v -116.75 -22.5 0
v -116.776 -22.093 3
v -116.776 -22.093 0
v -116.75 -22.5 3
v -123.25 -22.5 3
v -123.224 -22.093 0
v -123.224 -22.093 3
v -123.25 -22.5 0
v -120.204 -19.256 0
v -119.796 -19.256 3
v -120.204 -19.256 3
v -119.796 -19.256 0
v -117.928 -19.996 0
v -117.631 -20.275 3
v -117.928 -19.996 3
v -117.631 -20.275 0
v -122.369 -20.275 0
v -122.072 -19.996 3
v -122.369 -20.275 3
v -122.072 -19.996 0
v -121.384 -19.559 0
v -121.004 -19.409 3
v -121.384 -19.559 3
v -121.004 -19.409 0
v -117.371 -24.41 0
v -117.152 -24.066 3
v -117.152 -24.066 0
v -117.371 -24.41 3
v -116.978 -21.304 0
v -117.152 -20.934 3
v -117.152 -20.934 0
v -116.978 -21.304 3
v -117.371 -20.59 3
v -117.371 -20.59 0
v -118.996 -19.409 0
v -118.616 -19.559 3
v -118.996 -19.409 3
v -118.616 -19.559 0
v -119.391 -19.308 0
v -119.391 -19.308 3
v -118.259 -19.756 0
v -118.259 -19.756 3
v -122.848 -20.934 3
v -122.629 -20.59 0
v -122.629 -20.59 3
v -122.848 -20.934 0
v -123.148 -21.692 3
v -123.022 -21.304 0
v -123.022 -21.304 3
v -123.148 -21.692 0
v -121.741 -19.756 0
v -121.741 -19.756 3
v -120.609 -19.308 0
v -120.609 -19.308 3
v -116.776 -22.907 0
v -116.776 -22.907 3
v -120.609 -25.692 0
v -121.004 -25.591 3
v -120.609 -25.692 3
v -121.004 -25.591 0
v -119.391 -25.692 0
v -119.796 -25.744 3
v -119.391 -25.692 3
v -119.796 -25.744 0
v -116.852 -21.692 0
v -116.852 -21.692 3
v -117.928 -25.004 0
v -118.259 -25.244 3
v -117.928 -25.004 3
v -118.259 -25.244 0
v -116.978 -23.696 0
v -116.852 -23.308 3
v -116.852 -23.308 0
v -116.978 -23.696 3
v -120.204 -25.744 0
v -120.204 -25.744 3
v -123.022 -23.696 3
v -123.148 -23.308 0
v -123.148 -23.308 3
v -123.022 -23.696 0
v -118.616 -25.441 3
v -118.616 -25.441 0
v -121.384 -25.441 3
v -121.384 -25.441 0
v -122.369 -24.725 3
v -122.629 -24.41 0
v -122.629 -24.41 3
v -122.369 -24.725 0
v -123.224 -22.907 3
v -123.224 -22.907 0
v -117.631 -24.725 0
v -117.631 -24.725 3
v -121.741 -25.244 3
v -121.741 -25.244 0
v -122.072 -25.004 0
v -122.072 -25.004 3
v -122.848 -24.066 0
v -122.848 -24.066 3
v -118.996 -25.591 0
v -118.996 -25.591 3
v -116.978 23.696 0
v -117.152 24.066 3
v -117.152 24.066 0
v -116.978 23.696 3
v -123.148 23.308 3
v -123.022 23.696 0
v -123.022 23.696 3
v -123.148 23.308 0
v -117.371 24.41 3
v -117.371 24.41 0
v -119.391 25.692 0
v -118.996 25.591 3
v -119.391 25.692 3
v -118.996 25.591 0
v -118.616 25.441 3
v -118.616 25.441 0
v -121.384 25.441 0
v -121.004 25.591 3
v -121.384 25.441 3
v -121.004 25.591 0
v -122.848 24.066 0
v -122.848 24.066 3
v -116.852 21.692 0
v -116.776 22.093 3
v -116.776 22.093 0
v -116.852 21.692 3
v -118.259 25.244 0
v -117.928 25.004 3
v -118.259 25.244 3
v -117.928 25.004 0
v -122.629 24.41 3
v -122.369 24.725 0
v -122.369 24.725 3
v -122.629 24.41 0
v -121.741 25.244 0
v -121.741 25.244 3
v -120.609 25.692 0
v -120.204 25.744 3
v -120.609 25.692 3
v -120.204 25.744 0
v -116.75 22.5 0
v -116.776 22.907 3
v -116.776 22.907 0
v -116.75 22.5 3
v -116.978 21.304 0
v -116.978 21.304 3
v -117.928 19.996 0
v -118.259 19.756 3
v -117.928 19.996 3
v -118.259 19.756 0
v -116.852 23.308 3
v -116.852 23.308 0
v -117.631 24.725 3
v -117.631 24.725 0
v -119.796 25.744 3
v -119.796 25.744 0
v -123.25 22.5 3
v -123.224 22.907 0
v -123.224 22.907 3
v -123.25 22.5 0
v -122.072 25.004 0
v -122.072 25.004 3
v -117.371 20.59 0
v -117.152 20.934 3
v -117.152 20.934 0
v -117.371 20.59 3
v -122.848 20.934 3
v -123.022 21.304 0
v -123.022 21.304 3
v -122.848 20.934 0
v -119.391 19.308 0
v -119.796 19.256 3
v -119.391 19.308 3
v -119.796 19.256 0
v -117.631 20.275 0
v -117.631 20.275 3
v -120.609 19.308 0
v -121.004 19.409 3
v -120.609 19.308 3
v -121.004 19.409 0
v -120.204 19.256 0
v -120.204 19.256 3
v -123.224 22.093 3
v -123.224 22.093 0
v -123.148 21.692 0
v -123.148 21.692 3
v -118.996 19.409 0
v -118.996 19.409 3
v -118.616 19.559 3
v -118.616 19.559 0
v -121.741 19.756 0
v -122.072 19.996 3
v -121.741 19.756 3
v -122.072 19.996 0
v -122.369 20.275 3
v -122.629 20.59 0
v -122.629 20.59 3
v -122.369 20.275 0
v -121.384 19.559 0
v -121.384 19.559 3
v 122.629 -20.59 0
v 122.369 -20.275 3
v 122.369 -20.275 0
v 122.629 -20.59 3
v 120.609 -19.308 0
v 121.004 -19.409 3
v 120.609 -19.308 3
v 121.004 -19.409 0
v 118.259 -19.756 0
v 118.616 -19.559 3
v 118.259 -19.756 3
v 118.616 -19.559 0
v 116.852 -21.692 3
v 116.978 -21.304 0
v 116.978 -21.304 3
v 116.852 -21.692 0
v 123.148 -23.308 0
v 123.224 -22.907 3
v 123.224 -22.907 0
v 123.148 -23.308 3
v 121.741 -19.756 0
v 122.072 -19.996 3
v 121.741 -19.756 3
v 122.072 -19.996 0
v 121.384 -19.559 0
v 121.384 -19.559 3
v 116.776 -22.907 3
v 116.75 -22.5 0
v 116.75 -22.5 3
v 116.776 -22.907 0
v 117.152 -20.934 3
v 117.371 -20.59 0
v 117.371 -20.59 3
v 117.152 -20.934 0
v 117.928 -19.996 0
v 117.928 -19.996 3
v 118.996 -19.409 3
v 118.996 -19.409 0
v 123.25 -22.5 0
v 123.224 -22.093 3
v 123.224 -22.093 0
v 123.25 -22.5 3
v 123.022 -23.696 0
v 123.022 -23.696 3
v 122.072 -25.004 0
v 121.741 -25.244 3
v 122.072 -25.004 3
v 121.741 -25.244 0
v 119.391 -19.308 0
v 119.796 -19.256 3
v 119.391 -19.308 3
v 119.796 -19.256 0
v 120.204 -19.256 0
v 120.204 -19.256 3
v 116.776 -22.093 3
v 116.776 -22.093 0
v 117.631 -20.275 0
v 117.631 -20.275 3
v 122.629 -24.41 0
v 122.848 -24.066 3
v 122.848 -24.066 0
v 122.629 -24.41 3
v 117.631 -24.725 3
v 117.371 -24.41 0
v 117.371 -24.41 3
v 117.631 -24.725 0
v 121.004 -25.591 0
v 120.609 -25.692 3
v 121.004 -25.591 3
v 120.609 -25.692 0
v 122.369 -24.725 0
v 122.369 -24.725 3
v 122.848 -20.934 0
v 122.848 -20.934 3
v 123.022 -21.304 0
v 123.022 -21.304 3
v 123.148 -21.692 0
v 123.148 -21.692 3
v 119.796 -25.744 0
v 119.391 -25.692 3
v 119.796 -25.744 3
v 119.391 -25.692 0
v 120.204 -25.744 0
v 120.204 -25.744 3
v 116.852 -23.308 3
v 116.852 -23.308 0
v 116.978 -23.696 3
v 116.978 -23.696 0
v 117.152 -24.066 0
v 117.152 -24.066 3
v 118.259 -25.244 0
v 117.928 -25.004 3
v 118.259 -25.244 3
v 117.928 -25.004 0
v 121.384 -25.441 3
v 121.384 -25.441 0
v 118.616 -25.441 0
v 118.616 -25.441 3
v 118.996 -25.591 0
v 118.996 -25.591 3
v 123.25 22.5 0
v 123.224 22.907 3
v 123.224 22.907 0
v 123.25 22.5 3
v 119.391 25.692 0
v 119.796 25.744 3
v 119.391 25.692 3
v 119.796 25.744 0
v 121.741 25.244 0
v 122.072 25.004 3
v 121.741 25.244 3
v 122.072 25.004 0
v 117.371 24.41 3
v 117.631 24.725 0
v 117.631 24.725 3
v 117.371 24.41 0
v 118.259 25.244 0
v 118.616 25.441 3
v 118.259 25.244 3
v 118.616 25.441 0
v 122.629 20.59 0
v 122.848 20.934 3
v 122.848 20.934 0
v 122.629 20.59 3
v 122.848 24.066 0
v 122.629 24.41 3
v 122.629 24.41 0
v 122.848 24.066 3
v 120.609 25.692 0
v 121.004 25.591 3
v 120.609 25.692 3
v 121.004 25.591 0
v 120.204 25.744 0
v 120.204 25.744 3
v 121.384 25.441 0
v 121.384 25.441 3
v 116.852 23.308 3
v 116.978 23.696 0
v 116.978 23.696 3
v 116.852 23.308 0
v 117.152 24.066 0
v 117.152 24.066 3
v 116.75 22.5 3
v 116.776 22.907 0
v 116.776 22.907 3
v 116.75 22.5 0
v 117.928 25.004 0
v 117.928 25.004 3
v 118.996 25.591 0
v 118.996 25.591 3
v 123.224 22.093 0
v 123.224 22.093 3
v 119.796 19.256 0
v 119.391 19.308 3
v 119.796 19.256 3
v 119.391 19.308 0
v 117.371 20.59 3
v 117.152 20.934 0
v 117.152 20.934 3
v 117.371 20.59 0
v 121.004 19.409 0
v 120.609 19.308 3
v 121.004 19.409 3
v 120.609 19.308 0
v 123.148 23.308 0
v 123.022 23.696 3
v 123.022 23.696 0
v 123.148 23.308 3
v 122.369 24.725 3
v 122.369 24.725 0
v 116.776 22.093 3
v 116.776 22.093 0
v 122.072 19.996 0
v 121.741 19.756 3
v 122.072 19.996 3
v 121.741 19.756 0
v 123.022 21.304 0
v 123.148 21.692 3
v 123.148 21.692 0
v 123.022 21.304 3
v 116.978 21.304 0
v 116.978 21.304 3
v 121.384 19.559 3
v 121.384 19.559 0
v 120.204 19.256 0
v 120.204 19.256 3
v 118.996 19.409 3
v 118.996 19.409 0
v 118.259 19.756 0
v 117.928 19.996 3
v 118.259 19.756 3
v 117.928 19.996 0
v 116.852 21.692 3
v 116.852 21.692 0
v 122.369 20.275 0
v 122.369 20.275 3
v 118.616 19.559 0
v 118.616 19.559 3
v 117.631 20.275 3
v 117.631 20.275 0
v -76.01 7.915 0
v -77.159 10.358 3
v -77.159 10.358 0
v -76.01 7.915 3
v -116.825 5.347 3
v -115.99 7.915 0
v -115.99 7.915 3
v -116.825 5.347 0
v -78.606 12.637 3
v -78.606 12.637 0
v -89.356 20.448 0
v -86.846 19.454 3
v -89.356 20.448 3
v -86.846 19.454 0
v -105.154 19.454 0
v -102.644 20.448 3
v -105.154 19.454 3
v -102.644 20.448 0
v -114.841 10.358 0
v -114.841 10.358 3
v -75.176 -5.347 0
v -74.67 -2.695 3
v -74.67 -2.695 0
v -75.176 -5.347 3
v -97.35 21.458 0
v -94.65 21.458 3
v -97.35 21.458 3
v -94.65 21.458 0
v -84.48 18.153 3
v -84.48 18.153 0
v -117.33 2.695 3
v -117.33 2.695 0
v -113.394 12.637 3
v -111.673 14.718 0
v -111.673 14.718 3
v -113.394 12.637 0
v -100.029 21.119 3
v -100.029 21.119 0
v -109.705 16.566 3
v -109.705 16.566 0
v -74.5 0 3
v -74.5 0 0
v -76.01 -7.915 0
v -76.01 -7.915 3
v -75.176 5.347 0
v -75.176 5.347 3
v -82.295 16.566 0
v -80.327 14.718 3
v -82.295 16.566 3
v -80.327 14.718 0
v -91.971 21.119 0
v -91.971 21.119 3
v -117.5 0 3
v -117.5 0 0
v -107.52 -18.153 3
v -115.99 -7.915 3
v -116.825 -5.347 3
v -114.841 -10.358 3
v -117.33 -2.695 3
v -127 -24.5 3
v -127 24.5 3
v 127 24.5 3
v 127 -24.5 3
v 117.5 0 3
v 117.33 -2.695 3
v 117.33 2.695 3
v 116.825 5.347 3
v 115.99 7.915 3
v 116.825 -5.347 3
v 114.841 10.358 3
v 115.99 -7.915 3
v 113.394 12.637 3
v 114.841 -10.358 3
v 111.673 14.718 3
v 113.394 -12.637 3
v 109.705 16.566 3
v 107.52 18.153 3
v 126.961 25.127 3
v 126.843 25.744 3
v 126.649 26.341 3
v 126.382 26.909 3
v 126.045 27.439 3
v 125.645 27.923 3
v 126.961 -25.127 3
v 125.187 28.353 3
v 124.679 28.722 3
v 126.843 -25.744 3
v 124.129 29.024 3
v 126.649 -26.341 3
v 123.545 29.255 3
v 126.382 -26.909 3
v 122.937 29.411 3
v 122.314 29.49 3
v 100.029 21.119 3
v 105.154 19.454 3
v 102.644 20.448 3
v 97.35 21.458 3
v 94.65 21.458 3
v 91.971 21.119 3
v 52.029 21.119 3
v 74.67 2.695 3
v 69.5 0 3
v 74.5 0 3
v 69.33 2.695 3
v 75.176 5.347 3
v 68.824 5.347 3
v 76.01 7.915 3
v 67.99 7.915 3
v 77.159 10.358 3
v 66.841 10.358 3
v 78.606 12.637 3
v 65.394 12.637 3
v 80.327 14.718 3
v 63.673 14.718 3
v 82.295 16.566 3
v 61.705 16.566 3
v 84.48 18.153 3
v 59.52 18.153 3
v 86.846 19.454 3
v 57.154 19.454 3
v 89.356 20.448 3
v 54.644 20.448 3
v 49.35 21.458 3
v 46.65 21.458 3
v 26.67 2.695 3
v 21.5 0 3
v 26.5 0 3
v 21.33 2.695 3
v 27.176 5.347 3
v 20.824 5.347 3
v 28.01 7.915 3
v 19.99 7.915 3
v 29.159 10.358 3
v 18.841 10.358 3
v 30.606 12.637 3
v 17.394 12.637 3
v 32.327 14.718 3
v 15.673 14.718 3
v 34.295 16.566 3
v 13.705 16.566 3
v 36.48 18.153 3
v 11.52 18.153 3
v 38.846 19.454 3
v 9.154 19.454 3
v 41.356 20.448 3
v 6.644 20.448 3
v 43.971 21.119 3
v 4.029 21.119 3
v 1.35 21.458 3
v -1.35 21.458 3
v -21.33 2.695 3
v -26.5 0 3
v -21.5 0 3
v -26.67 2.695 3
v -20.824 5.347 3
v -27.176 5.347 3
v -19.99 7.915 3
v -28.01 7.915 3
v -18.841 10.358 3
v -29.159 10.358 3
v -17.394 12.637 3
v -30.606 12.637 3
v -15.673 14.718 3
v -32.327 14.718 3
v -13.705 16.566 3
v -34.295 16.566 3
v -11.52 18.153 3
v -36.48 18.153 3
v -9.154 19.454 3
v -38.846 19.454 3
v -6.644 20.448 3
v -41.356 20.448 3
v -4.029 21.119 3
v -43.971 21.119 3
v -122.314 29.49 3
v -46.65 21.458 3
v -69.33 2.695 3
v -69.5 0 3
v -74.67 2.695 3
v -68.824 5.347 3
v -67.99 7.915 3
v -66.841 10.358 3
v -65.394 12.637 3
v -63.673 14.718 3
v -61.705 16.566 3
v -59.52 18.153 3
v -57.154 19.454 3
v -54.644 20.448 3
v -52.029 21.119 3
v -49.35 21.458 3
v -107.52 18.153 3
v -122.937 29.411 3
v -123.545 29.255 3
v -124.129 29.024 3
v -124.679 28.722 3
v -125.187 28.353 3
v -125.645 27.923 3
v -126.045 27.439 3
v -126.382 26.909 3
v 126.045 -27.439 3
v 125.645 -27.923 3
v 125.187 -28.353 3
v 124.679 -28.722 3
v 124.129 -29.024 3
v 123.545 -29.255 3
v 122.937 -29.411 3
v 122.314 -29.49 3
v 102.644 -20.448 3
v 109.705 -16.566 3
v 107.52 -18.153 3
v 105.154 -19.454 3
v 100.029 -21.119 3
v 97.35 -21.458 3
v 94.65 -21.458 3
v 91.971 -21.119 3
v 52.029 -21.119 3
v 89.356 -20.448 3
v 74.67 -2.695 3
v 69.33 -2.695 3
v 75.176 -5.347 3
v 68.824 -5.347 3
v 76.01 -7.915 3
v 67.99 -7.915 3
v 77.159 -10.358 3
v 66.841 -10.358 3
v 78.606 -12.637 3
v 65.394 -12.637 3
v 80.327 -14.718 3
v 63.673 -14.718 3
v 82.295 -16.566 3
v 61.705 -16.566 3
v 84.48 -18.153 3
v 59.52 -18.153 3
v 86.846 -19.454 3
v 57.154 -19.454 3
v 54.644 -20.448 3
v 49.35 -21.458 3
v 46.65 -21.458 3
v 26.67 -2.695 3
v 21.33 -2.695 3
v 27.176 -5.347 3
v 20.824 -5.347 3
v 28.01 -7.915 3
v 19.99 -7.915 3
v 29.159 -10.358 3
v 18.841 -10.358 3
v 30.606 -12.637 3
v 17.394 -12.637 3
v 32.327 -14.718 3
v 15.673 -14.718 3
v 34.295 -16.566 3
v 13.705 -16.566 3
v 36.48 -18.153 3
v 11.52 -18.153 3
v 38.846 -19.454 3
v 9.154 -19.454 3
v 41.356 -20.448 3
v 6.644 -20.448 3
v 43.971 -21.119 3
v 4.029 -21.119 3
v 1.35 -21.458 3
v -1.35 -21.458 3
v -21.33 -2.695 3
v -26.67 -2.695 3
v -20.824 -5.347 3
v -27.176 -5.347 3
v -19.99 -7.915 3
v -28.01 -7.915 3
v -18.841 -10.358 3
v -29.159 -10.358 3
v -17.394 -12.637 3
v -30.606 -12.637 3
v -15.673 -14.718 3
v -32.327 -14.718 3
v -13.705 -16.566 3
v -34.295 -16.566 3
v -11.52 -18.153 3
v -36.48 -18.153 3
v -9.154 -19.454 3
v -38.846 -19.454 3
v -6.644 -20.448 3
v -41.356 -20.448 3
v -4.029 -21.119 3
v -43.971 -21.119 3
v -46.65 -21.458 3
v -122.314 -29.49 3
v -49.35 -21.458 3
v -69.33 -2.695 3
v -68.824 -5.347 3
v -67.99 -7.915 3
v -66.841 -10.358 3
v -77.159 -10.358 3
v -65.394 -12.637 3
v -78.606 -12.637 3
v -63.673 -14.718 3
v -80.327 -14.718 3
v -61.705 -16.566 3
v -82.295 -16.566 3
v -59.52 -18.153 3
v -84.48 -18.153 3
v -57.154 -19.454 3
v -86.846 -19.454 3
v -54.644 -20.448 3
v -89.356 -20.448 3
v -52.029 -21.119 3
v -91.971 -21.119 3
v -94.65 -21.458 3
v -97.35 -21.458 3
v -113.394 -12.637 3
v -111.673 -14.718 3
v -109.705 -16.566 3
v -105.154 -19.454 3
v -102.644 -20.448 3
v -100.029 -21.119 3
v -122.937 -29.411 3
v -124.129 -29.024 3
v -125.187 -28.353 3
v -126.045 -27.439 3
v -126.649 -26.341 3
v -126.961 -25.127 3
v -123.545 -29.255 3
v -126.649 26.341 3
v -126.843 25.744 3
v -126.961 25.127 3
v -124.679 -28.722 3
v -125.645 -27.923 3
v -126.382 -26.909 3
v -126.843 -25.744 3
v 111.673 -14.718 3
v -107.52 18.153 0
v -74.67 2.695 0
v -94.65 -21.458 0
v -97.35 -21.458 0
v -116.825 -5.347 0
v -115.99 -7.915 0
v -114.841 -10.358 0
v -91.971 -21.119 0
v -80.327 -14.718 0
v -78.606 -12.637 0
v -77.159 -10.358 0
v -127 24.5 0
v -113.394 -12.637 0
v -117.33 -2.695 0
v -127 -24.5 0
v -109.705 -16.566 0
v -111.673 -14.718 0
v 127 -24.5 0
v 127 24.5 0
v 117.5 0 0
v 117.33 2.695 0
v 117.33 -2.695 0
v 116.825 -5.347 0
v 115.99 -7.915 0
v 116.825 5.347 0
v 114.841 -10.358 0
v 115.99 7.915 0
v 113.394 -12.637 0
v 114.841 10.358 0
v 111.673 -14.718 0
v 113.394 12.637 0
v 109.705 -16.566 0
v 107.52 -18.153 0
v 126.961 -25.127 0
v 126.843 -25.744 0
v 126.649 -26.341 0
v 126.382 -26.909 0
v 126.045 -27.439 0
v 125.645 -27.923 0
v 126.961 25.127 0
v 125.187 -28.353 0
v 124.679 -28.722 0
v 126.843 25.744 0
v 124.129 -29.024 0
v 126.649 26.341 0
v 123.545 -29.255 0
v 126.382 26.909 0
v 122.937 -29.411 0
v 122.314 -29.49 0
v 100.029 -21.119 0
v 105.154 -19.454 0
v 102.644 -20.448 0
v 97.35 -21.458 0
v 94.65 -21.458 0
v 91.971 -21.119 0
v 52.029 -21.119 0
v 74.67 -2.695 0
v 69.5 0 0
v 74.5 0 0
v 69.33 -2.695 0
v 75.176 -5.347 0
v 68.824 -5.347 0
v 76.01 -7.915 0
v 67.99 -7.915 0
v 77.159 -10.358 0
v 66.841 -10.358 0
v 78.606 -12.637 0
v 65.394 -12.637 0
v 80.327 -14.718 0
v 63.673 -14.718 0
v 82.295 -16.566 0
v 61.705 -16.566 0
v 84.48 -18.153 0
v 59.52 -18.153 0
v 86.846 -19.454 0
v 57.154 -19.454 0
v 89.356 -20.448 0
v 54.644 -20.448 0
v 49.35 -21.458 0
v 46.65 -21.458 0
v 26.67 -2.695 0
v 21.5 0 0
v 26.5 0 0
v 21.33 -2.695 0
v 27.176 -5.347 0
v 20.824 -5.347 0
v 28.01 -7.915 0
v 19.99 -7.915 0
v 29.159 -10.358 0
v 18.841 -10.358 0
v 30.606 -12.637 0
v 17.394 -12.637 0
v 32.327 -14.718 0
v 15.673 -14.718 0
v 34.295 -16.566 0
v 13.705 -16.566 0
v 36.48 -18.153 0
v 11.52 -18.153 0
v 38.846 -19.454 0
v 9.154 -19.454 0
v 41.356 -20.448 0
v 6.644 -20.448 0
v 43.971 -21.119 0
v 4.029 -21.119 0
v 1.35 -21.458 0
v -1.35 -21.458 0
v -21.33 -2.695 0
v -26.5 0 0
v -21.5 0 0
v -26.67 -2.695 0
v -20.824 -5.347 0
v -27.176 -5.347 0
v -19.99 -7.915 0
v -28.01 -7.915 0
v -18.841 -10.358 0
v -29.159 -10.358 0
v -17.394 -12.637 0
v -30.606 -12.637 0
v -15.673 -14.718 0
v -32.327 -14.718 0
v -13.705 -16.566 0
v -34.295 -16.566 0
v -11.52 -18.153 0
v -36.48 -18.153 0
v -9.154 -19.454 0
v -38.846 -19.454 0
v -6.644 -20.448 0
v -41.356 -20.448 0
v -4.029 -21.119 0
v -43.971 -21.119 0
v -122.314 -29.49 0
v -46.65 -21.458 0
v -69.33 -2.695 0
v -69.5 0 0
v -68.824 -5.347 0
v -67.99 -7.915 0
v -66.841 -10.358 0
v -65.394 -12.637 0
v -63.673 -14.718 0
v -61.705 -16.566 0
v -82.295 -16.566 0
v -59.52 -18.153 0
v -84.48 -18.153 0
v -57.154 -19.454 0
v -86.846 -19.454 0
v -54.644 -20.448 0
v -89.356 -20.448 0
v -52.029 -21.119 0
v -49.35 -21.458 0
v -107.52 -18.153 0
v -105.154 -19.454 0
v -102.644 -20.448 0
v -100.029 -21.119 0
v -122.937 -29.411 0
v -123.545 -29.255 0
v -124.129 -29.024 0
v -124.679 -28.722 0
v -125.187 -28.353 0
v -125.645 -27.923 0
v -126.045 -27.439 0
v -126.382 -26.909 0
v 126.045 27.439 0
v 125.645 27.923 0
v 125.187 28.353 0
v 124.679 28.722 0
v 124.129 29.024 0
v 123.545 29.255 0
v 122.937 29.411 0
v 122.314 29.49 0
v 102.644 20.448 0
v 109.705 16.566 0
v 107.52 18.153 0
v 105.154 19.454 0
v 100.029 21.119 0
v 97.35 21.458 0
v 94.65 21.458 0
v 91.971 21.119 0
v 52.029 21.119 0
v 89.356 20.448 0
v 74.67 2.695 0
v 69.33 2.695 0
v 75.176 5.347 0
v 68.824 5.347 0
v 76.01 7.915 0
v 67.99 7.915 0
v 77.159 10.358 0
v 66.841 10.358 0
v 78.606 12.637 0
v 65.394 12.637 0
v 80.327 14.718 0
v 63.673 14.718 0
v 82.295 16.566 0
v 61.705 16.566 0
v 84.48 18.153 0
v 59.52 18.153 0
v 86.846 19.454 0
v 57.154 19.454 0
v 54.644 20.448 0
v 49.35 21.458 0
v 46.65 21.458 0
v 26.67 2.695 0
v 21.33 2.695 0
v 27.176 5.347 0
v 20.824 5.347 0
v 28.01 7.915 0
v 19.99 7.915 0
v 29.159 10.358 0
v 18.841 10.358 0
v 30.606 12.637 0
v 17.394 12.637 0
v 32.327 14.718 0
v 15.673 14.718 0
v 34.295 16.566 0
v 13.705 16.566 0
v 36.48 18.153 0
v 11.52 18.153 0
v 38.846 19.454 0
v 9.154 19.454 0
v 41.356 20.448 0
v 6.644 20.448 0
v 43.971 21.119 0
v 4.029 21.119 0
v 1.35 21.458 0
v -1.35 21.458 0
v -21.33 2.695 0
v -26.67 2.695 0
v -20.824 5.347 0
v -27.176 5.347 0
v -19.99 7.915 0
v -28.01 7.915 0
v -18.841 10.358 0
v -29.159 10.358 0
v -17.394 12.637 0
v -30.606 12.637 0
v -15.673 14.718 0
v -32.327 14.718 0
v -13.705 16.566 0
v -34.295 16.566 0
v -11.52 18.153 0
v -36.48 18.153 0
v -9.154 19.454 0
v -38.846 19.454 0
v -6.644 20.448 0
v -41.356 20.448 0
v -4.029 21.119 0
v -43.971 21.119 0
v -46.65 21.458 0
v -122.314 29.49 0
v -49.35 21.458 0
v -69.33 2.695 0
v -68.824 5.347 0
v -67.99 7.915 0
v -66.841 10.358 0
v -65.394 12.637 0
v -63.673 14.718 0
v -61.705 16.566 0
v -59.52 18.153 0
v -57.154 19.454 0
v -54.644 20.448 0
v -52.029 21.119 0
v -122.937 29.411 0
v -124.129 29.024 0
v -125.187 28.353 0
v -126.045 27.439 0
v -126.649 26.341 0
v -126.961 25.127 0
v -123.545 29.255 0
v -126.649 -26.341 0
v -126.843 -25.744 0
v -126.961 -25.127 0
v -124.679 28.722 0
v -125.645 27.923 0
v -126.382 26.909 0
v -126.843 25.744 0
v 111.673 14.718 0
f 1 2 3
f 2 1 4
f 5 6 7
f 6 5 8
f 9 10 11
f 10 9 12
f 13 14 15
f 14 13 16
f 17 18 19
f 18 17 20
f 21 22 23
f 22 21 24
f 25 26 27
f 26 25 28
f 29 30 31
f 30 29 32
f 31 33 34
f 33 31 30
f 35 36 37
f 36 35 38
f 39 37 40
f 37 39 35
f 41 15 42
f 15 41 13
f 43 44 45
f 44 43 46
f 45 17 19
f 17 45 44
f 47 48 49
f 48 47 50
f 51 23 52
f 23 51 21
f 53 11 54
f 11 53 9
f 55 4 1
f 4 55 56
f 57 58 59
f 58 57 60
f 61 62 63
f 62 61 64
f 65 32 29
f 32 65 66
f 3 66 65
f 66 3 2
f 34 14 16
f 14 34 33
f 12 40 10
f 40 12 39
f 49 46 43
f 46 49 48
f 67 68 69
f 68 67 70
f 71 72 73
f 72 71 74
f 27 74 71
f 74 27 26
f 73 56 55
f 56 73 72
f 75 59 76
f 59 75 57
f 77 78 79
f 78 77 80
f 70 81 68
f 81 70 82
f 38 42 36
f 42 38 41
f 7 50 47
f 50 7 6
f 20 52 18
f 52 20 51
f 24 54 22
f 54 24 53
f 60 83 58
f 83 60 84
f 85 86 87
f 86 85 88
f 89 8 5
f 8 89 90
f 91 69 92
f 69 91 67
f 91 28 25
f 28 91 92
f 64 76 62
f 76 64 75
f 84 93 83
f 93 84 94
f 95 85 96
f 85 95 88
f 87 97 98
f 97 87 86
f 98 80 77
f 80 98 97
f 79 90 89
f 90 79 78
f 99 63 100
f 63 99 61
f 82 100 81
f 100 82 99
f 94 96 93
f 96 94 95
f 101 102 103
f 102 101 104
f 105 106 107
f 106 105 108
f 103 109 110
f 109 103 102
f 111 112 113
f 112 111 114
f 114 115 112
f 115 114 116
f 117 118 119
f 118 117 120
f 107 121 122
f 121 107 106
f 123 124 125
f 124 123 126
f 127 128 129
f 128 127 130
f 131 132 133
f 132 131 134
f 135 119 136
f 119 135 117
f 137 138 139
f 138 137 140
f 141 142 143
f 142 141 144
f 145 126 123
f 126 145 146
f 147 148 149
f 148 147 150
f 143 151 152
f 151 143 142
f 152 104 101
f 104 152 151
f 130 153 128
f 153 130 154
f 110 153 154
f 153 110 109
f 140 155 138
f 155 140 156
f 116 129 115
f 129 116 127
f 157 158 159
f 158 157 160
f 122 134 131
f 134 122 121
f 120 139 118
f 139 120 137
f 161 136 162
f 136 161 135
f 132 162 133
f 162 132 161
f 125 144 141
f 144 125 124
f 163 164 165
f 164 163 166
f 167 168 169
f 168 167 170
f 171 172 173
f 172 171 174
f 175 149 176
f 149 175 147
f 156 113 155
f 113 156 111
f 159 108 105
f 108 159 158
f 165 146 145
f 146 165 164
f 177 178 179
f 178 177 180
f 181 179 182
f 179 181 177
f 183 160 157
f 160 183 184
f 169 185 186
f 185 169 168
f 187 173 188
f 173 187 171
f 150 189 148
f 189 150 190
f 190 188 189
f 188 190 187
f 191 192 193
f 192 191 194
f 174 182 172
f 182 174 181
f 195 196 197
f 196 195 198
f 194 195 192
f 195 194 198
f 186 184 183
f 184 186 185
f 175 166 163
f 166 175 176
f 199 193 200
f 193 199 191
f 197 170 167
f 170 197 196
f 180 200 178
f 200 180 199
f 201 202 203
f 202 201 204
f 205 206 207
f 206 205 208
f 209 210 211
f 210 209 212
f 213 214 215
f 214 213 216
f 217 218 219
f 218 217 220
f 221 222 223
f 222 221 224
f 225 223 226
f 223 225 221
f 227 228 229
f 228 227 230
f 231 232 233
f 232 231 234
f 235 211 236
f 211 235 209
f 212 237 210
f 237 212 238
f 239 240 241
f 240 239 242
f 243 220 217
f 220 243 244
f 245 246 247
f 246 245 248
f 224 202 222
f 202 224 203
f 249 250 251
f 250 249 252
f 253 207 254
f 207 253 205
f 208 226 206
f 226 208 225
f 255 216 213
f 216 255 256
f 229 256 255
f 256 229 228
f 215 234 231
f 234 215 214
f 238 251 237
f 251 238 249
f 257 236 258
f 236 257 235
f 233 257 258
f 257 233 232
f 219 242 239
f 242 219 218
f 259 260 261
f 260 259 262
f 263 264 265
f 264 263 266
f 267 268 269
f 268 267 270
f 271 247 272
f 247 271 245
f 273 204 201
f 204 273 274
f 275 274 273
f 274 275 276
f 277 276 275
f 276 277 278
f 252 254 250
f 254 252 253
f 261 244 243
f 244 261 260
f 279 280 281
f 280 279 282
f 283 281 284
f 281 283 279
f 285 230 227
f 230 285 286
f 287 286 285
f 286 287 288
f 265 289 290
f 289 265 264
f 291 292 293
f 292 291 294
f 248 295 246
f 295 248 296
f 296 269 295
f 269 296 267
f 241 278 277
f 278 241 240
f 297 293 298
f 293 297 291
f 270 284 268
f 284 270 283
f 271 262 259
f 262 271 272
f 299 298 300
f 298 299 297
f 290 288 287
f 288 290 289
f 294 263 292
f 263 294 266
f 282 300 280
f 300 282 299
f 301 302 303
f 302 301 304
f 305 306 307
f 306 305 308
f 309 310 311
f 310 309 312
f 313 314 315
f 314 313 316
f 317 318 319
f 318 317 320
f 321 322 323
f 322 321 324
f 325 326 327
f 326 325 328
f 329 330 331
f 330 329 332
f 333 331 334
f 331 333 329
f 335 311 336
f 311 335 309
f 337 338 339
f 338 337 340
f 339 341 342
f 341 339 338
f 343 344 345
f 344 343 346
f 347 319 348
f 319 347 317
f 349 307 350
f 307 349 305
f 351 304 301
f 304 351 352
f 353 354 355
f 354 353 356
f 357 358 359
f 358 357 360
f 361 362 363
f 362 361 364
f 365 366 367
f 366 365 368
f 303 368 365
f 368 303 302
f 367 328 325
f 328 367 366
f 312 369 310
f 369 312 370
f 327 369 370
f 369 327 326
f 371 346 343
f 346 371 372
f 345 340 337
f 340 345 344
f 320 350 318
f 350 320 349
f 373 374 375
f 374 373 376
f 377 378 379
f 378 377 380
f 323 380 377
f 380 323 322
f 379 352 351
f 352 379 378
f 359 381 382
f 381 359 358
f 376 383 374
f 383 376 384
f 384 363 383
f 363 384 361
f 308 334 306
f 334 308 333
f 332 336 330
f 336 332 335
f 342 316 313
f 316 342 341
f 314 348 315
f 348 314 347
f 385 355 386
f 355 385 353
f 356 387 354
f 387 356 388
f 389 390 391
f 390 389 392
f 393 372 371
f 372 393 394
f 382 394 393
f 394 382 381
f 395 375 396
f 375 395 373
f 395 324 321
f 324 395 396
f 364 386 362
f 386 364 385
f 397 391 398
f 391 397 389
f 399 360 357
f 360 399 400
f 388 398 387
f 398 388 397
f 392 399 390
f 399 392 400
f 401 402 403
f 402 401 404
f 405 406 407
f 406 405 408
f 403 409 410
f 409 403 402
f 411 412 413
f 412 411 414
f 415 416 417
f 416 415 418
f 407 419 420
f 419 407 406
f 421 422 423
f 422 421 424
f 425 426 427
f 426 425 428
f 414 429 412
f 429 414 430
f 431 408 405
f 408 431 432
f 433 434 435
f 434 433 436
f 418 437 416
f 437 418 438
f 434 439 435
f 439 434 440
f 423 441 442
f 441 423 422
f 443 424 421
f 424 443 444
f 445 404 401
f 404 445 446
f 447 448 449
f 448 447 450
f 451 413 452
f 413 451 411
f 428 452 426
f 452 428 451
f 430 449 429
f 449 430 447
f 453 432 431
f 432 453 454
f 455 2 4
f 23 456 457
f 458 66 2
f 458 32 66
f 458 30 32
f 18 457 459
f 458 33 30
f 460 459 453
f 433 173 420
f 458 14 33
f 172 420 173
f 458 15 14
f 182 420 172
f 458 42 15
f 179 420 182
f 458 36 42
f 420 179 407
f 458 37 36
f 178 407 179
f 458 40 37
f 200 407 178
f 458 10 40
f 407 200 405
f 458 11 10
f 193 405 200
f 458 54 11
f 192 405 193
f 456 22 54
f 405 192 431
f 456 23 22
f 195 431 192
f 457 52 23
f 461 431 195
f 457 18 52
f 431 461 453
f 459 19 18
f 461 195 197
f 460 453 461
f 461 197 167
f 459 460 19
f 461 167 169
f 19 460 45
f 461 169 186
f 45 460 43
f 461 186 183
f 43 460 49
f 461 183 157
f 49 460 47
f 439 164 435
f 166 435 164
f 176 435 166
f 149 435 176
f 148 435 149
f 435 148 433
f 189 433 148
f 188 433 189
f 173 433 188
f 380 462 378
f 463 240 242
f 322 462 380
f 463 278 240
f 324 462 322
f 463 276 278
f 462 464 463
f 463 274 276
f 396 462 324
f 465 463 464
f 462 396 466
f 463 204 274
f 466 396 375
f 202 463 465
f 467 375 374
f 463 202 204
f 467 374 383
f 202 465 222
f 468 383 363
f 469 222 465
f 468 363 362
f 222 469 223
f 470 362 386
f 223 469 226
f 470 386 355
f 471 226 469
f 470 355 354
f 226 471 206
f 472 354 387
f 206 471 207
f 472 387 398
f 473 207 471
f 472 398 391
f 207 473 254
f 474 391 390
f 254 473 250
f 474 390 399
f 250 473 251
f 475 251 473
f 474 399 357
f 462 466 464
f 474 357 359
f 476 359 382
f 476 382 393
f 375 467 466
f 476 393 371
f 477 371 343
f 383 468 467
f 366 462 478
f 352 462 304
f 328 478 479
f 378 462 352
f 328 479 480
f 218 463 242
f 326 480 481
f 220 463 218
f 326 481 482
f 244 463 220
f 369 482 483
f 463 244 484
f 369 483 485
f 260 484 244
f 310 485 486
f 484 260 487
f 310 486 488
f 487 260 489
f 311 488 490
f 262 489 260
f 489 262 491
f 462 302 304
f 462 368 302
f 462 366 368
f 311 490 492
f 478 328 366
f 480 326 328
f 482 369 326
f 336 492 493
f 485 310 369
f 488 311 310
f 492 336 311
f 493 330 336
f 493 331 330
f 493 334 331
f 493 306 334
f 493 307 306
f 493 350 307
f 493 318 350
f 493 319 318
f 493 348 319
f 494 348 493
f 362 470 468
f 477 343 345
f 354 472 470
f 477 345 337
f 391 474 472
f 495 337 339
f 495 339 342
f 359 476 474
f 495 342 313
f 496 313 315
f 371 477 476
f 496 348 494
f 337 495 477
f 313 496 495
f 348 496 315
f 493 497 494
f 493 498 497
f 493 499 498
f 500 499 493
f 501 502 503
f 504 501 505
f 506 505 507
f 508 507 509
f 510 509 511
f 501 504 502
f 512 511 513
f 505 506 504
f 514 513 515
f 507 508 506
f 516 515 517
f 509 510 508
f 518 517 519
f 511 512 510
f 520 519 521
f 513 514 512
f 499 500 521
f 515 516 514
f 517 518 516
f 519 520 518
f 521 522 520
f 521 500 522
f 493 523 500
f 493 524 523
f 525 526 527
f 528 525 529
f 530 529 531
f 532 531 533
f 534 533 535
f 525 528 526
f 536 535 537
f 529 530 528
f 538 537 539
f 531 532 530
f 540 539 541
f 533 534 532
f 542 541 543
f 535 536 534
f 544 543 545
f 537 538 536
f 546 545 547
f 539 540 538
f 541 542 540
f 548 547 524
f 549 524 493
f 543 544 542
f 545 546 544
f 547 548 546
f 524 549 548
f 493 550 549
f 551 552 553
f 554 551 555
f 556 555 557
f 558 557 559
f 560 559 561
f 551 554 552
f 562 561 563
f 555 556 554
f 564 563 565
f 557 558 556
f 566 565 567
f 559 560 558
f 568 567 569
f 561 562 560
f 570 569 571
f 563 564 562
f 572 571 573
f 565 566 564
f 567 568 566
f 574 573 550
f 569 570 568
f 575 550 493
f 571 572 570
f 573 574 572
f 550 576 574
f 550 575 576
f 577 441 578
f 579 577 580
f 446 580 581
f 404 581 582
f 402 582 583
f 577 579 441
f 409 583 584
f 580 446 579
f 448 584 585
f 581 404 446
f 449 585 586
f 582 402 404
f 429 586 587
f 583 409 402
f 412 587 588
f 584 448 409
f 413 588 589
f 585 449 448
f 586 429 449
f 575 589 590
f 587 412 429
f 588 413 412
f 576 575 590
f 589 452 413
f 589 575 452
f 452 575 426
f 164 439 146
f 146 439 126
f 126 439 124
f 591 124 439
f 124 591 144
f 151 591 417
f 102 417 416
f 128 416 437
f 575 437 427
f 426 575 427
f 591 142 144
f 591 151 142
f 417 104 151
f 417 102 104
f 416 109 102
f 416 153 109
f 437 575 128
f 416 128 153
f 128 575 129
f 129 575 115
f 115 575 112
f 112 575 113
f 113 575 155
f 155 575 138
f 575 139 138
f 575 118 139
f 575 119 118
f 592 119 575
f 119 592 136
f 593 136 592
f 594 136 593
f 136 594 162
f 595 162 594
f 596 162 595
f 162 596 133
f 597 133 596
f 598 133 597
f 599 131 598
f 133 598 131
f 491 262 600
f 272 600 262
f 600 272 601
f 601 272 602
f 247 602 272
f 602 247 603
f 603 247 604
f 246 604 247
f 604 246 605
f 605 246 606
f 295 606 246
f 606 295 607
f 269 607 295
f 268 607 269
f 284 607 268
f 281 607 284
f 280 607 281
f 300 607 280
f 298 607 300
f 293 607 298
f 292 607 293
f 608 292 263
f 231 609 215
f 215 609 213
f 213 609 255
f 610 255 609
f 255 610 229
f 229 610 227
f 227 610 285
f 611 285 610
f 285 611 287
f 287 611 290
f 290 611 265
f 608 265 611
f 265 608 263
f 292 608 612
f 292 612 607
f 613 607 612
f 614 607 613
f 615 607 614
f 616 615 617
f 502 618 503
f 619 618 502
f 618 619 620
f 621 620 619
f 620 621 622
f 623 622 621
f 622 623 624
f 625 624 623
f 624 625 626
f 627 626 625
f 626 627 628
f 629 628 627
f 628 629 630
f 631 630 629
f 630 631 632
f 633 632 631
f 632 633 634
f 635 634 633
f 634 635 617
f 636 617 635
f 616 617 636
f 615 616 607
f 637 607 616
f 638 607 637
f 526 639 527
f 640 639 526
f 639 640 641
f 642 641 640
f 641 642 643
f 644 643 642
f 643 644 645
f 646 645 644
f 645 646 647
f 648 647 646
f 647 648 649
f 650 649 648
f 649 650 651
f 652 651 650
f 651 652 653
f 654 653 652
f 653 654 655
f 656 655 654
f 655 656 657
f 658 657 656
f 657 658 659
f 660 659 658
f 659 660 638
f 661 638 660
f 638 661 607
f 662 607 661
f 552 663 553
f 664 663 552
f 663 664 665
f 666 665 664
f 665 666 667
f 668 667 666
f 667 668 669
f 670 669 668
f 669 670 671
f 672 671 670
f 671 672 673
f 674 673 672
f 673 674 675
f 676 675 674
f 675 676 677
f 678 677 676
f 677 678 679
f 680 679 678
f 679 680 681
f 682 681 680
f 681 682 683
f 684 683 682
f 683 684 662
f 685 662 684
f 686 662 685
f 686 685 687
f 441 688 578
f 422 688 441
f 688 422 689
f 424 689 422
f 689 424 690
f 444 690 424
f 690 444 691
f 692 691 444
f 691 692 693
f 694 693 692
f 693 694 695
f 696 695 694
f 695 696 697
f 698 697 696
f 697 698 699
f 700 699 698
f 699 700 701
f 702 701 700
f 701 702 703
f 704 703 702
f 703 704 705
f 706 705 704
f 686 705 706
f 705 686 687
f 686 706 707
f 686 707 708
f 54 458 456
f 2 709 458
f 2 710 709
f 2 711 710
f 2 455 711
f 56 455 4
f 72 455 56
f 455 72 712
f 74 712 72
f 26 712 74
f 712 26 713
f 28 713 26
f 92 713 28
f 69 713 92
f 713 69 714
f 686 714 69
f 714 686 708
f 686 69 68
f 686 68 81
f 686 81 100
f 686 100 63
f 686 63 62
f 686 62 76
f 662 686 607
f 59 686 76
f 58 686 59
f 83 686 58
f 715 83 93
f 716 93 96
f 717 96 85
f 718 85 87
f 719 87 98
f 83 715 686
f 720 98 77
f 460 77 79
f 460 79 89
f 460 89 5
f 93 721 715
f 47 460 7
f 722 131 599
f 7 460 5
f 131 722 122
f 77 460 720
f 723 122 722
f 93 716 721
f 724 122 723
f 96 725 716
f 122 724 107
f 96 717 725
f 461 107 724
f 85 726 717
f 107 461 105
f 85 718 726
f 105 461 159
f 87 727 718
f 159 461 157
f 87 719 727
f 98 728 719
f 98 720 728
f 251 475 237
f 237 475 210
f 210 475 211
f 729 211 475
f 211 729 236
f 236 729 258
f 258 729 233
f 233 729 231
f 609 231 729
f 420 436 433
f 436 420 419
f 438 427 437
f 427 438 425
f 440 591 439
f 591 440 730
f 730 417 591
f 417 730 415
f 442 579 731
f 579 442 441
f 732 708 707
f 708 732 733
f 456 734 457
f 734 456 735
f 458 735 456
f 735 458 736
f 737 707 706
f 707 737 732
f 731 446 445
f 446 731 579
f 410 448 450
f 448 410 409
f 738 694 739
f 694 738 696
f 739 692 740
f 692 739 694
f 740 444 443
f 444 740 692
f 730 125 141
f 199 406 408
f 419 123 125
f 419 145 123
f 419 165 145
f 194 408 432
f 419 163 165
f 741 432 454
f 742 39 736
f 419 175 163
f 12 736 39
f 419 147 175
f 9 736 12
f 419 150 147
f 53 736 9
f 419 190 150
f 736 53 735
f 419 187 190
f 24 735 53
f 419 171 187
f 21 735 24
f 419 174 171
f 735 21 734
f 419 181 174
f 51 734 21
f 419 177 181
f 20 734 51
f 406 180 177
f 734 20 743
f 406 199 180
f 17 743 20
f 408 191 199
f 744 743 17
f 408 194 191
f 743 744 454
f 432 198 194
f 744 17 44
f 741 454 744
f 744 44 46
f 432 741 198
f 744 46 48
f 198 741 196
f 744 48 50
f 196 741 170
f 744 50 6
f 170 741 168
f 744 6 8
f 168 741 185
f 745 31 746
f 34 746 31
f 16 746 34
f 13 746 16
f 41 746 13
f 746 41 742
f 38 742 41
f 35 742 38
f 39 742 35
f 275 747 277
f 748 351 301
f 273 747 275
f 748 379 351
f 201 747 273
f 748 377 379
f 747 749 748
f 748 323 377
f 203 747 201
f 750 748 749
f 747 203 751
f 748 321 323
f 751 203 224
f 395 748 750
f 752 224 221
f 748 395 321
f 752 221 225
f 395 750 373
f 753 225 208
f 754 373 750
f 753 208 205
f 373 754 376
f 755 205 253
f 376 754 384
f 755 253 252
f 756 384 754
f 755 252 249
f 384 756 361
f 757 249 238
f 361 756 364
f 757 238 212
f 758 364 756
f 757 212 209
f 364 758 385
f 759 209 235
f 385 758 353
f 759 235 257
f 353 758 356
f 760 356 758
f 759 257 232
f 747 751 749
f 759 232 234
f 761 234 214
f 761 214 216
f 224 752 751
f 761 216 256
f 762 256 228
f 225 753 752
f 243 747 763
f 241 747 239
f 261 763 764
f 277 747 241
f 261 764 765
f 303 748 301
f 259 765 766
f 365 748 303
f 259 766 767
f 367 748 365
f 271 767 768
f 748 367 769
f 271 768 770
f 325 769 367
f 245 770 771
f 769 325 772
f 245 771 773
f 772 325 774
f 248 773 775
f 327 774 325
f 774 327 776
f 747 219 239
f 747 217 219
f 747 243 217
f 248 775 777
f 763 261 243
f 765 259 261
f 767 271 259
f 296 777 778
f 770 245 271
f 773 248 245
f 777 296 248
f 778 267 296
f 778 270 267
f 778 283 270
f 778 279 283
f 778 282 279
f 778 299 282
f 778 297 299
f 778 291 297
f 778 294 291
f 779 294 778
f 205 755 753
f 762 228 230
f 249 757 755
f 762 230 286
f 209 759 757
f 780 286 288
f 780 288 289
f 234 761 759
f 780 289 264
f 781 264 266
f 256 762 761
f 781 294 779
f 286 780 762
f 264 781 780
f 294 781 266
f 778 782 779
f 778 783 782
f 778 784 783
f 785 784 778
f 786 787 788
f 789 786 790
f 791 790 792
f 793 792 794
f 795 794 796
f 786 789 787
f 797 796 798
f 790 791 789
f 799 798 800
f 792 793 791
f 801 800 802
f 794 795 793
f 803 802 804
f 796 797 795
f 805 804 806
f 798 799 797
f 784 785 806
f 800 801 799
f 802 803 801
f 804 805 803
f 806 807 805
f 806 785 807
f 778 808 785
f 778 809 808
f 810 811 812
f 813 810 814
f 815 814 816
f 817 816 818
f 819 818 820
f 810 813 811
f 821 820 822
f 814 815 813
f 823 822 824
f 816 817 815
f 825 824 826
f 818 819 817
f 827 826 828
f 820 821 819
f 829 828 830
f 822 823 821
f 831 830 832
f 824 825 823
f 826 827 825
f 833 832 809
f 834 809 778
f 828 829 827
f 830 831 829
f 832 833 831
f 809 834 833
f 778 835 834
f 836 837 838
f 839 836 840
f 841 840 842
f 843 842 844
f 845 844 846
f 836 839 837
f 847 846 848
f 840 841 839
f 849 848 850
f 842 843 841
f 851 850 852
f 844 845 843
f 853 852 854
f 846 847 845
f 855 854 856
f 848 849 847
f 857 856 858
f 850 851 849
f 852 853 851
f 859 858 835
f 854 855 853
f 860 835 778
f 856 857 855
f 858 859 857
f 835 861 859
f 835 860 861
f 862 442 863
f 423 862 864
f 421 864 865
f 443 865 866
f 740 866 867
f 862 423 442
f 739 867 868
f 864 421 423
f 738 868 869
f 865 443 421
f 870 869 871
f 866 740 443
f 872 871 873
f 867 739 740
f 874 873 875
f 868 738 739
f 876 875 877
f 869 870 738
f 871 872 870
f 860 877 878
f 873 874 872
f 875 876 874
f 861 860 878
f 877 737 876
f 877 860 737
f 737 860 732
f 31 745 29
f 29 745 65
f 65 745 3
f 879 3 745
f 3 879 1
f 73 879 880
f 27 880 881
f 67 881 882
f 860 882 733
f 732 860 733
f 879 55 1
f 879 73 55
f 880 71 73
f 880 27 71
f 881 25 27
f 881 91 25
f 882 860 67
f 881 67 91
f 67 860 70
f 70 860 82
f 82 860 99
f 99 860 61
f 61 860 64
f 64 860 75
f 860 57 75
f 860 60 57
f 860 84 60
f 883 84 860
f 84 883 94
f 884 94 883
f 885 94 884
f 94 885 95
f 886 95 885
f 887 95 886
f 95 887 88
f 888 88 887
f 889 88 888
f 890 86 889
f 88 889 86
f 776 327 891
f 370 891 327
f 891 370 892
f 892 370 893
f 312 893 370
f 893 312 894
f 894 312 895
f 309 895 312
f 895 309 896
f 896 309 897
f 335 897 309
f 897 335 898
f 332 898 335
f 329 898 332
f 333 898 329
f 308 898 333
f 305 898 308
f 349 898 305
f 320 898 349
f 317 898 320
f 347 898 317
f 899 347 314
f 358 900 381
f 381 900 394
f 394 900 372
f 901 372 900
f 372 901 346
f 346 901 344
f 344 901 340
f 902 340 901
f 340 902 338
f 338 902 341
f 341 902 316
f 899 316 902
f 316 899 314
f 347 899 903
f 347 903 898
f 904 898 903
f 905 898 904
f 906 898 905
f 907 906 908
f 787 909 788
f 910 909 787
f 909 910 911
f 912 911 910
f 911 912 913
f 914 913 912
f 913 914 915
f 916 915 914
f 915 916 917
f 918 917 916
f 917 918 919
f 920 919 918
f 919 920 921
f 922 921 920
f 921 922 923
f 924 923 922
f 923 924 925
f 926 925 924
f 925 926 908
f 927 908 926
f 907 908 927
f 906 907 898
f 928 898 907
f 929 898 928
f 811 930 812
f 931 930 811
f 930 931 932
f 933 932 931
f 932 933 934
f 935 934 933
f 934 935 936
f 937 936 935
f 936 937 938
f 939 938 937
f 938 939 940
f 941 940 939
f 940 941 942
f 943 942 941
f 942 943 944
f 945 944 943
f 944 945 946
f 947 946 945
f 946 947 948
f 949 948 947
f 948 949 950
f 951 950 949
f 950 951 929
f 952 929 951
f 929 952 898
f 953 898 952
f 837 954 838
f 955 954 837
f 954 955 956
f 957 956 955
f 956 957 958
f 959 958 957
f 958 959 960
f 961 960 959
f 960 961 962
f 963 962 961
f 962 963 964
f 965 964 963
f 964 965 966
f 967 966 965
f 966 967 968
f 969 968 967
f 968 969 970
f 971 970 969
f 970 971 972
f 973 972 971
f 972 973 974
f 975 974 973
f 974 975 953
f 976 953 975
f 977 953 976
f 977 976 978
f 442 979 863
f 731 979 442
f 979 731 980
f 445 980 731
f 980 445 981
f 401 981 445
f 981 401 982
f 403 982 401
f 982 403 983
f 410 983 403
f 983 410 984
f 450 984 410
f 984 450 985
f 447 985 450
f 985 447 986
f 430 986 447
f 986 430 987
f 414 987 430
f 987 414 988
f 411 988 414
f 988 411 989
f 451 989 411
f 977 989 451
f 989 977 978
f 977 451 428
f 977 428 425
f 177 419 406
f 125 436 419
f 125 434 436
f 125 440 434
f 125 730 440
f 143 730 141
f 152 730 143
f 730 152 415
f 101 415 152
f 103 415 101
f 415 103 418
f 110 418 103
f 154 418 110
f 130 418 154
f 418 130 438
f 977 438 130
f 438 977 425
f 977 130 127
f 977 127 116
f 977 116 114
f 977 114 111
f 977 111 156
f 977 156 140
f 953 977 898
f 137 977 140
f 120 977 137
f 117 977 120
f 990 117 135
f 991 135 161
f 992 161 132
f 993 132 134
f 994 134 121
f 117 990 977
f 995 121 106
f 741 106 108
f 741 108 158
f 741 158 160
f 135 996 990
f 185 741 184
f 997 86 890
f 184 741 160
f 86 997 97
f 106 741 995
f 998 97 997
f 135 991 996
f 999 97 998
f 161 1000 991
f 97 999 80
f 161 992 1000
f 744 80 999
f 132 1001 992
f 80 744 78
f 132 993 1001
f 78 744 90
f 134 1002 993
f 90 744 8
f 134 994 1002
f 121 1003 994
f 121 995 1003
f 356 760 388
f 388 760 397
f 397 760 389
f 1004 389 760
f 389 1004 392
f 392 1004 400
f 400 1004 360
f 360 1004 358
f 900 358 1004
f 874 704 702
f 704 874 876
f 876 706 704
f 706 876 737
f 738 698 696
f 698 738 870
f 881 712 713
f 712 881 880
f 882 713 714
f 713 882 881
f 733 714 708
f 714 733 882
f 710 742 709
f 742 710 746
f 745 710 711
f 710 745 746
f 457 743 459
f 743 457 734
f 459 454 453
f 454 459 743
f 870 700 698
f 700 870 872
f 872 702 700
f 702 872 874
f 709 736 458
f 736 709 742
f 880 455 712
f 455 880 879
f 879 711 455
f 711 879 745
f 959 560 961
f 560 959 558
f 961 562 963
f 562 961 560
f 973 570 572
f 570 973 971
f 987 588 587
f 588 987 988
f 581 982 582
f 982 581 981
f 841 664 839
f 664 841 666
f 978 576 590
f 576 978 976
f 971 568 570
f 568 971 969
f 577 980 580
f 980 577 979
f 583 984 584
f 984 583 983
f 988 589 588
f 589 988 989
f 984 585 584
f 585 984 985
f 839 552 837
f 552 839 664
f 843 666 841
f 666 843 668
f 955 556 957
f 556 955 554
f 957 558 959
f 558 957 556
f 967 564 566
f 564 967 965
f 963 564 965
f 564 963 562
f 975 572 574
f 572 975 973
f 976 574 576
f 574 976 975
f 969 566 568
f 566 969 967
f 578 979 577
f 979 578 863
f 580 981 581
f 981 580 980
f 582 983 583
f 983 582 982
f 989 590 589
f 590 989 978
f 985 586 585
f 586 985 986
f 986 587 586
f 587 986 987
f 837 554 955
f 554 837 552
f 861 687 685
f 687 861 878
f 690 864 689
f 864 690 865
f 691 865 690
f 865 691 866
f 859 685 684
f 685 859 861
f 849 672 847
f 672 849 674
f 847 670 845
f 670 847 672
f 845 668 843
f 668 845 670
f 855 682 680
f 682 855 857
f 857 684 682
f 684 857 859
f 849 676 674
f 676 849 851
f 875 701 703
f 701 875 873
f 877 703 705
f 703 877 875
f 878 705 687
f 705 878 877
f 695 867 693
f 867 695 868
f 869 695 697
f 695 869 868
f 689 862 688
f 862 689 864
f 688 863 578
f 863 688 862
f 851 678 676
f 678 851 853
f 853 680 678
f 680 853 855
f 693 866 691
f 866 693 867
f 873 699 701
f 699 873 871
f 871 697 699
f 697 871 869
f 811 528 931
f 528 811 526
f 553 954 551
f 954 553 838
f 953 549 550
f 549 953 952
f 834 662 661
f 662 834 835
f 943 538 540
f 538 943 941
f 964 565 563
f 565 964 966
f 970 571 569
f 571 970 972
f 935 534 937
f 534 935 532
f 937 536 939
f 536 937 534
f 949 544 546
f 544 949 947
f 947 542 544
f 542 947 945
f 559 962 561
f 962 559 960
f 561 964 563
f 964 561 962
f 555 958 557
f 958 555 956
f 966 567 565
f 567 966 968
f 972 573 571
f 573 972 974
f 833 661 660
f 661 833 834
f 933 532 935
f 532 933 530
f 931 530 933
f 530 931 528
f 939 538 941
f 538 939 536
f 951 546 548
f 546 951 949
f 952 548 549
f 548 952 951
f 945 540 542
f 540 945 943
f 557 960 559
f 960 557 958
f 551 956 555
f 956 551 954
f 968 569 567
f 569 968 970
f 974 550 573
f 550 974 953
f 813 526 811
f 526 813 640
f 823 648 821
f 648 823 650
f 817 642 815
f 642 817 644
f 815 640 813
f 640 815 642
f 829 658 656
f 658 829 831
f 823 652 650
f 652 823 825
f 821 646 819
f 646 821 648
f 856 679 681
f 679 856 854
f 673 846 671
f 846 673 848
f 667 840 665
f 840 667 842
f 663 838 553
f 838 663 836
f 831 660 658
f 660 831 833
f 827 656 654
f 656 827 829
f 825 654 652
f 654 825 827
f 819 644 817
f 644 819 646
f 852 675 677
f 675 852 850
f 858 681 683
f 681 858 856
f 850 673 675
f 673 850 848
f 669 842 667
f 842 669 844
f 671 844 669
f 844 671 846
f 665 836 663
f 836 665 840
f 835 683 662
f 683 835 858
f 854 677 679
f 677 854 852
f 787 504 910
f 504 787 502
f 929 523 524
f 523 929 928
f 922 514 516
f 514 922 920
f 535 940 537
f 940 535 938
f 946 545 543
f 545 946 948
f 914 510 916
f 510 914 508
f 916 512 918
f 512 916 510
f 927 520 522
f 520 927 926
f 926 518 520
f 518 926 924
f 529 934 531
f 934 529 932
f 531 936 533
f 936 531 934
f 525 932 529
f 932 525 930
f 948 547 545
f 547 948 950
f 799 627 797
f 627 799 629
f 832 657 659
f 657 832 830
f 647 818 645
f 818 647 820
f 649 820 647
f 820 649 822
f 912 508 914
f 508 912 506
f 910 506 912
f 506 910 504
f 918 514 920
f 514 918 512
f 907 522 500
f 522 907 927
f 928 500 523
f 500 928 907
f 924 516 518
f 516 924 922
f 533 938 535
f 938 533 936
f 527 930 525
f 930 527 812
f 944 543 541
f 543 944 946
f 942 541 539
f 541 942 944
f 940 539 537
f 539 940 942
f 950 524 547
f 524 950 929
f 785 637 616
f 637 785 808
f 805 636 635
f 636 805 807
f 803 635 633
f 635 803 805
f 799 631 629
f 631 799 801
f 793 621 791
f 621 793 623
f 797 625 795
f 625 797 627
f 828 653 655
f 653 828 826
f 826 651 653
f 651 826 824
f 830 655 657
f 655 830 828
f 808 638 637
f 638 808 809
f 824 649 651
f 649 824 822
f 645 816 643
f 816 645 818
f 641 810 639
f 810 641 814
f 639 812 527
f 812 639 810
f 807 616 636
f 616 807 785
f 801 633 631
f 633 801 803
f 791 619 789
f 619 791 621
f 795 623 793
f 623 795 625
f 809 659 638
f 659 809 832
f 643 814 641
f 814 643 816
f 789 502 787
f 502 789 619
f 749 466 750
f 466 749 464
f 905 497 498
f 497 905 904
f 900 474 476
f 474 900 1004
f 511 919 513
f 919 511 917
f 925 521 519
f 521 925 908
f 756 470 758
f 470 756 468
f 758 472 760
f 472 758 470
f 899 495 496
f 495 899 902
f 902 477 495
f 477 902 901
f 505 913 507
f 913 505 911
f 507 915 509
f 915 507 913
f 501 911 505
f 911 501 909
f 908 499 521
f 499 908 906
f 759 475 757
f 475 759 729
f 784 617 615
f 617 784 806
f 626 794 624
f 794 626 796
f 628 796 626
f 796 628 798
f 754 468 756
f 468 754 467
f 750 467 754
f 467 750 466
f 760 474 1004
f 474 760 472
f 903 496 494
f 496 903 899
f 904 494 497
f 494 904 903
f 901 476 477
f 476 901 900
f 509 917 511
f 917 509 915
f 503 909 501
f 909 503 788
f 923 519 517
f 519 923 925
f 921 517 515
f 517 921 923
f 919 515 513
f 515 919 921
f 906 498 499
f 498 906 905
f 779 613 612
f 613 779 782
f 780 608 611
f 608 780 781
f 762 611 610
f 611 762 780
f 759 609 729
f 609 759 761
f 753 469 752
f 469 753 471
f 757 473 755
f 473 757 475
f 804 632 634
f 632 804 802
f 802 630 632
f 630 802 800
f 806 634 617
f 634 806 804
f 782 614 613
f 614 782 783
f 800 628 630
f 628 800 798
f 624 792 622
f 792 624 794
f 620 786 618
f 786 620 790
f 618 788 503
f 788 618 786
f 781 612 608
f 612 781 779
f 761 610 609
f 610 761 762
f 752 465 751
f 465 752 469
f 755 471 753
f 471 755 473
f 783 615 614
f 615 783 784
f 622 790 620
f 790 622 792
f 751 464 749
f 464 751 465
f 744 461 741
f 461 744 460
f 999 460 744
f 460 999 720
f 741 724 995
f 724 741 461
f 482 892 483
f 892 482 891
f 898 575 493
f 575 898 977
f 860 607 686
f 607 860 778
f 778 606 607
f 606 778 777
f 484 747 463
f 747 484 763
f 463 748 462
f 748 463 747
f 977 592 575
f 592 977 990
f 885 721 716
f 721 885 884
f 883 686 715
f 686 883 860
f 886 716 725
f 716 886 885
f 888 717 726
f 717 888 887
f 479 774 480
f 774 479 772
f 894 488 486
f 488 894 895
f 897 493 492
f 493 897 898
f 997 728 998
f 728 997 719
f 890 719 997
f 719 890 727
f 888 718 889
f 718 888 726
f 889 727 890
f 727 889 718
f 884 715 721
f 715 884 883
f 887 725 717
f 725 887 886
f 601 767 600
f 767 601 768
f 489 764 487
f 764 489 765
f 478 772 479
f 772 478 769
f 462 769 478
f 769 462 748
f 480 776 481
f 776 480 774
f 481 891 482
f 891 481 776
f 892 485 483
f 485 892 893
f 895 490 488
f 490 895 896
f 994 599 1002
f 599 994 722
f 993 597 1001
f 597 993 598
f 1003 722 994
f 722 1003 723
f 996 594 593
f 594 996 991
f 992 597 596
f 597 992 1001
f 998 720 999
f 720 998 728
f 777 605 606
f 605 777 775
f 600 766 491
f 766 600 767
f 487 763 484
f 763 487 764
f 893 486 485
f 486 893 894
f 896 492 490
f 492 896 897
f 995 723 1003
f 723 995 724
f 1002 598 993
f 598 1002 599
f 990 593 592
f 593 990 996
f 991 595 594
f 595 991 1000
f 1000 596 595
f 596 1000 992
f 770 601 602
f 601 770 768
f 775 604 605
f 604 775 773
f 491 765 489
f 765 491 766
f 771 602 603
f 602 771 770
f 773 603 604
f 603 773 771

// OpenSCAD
$fn = 50;


difference() {
	union() {
		hull() {
			translate(v = [-122.0000000000, 24.5000000000, 0]) {
				cylinder(h = 3, r = 5);
			}
			translate(v = [122.0000000000, 24.5000000000, 0]) {
				cylinder(h = 3, r = 5);
			}
			translate(v = [-122.0000000000, -24.5000000000, 0]) {
				cylinder(h = 3, r = 5);
			}
			translate(v = [122.0000000000, -24.5000000000, 0]) {
				cylinder(h = 3, r = 5);
			}
		}
	}
	union() {
		#translate(v = [-120.0000000000, -22.5000000000, -100.0000000000]) {
			cylinder(h = 200, r = 3.2500000000);
		}
		#translate(v = [-120.0000000000, 22.5000000000, -100.0000000000]) {
			cylinder(h = 200, r = 3.2500000000);
		}
		#translate(v = [120.0000000000, -22.5000000000, -100.0000000000]) {
			cylinder(h = 200, r = 3.2500000000);
		}
		#translate(v = [120.0000000000, 22.5000000000, -100.0000000000]) {
			cylinder(h = 200, r = 3.2500000000);
		}
		#translate(v = [-96.0000000000, 0, 0]) {
			cylinder(h = 3, r = 21.5000000000);
		}
		#translate(v = [-48.0000000000, 0, 0]) {
			cylinder(h = 3, r = 21.5000000000);
		}
		#cylinder(h = 3, r = 21.5000000000);
		#translate(v = [48.0000000000, 0, 0]) {
			cylinder(h = 3, r = 21.5000000000);
		}
		#translate(v = [96.0000000000, 0, 0]) {
			cylinder(h = 3, r = 21.5000000000);
		}
	}
}
